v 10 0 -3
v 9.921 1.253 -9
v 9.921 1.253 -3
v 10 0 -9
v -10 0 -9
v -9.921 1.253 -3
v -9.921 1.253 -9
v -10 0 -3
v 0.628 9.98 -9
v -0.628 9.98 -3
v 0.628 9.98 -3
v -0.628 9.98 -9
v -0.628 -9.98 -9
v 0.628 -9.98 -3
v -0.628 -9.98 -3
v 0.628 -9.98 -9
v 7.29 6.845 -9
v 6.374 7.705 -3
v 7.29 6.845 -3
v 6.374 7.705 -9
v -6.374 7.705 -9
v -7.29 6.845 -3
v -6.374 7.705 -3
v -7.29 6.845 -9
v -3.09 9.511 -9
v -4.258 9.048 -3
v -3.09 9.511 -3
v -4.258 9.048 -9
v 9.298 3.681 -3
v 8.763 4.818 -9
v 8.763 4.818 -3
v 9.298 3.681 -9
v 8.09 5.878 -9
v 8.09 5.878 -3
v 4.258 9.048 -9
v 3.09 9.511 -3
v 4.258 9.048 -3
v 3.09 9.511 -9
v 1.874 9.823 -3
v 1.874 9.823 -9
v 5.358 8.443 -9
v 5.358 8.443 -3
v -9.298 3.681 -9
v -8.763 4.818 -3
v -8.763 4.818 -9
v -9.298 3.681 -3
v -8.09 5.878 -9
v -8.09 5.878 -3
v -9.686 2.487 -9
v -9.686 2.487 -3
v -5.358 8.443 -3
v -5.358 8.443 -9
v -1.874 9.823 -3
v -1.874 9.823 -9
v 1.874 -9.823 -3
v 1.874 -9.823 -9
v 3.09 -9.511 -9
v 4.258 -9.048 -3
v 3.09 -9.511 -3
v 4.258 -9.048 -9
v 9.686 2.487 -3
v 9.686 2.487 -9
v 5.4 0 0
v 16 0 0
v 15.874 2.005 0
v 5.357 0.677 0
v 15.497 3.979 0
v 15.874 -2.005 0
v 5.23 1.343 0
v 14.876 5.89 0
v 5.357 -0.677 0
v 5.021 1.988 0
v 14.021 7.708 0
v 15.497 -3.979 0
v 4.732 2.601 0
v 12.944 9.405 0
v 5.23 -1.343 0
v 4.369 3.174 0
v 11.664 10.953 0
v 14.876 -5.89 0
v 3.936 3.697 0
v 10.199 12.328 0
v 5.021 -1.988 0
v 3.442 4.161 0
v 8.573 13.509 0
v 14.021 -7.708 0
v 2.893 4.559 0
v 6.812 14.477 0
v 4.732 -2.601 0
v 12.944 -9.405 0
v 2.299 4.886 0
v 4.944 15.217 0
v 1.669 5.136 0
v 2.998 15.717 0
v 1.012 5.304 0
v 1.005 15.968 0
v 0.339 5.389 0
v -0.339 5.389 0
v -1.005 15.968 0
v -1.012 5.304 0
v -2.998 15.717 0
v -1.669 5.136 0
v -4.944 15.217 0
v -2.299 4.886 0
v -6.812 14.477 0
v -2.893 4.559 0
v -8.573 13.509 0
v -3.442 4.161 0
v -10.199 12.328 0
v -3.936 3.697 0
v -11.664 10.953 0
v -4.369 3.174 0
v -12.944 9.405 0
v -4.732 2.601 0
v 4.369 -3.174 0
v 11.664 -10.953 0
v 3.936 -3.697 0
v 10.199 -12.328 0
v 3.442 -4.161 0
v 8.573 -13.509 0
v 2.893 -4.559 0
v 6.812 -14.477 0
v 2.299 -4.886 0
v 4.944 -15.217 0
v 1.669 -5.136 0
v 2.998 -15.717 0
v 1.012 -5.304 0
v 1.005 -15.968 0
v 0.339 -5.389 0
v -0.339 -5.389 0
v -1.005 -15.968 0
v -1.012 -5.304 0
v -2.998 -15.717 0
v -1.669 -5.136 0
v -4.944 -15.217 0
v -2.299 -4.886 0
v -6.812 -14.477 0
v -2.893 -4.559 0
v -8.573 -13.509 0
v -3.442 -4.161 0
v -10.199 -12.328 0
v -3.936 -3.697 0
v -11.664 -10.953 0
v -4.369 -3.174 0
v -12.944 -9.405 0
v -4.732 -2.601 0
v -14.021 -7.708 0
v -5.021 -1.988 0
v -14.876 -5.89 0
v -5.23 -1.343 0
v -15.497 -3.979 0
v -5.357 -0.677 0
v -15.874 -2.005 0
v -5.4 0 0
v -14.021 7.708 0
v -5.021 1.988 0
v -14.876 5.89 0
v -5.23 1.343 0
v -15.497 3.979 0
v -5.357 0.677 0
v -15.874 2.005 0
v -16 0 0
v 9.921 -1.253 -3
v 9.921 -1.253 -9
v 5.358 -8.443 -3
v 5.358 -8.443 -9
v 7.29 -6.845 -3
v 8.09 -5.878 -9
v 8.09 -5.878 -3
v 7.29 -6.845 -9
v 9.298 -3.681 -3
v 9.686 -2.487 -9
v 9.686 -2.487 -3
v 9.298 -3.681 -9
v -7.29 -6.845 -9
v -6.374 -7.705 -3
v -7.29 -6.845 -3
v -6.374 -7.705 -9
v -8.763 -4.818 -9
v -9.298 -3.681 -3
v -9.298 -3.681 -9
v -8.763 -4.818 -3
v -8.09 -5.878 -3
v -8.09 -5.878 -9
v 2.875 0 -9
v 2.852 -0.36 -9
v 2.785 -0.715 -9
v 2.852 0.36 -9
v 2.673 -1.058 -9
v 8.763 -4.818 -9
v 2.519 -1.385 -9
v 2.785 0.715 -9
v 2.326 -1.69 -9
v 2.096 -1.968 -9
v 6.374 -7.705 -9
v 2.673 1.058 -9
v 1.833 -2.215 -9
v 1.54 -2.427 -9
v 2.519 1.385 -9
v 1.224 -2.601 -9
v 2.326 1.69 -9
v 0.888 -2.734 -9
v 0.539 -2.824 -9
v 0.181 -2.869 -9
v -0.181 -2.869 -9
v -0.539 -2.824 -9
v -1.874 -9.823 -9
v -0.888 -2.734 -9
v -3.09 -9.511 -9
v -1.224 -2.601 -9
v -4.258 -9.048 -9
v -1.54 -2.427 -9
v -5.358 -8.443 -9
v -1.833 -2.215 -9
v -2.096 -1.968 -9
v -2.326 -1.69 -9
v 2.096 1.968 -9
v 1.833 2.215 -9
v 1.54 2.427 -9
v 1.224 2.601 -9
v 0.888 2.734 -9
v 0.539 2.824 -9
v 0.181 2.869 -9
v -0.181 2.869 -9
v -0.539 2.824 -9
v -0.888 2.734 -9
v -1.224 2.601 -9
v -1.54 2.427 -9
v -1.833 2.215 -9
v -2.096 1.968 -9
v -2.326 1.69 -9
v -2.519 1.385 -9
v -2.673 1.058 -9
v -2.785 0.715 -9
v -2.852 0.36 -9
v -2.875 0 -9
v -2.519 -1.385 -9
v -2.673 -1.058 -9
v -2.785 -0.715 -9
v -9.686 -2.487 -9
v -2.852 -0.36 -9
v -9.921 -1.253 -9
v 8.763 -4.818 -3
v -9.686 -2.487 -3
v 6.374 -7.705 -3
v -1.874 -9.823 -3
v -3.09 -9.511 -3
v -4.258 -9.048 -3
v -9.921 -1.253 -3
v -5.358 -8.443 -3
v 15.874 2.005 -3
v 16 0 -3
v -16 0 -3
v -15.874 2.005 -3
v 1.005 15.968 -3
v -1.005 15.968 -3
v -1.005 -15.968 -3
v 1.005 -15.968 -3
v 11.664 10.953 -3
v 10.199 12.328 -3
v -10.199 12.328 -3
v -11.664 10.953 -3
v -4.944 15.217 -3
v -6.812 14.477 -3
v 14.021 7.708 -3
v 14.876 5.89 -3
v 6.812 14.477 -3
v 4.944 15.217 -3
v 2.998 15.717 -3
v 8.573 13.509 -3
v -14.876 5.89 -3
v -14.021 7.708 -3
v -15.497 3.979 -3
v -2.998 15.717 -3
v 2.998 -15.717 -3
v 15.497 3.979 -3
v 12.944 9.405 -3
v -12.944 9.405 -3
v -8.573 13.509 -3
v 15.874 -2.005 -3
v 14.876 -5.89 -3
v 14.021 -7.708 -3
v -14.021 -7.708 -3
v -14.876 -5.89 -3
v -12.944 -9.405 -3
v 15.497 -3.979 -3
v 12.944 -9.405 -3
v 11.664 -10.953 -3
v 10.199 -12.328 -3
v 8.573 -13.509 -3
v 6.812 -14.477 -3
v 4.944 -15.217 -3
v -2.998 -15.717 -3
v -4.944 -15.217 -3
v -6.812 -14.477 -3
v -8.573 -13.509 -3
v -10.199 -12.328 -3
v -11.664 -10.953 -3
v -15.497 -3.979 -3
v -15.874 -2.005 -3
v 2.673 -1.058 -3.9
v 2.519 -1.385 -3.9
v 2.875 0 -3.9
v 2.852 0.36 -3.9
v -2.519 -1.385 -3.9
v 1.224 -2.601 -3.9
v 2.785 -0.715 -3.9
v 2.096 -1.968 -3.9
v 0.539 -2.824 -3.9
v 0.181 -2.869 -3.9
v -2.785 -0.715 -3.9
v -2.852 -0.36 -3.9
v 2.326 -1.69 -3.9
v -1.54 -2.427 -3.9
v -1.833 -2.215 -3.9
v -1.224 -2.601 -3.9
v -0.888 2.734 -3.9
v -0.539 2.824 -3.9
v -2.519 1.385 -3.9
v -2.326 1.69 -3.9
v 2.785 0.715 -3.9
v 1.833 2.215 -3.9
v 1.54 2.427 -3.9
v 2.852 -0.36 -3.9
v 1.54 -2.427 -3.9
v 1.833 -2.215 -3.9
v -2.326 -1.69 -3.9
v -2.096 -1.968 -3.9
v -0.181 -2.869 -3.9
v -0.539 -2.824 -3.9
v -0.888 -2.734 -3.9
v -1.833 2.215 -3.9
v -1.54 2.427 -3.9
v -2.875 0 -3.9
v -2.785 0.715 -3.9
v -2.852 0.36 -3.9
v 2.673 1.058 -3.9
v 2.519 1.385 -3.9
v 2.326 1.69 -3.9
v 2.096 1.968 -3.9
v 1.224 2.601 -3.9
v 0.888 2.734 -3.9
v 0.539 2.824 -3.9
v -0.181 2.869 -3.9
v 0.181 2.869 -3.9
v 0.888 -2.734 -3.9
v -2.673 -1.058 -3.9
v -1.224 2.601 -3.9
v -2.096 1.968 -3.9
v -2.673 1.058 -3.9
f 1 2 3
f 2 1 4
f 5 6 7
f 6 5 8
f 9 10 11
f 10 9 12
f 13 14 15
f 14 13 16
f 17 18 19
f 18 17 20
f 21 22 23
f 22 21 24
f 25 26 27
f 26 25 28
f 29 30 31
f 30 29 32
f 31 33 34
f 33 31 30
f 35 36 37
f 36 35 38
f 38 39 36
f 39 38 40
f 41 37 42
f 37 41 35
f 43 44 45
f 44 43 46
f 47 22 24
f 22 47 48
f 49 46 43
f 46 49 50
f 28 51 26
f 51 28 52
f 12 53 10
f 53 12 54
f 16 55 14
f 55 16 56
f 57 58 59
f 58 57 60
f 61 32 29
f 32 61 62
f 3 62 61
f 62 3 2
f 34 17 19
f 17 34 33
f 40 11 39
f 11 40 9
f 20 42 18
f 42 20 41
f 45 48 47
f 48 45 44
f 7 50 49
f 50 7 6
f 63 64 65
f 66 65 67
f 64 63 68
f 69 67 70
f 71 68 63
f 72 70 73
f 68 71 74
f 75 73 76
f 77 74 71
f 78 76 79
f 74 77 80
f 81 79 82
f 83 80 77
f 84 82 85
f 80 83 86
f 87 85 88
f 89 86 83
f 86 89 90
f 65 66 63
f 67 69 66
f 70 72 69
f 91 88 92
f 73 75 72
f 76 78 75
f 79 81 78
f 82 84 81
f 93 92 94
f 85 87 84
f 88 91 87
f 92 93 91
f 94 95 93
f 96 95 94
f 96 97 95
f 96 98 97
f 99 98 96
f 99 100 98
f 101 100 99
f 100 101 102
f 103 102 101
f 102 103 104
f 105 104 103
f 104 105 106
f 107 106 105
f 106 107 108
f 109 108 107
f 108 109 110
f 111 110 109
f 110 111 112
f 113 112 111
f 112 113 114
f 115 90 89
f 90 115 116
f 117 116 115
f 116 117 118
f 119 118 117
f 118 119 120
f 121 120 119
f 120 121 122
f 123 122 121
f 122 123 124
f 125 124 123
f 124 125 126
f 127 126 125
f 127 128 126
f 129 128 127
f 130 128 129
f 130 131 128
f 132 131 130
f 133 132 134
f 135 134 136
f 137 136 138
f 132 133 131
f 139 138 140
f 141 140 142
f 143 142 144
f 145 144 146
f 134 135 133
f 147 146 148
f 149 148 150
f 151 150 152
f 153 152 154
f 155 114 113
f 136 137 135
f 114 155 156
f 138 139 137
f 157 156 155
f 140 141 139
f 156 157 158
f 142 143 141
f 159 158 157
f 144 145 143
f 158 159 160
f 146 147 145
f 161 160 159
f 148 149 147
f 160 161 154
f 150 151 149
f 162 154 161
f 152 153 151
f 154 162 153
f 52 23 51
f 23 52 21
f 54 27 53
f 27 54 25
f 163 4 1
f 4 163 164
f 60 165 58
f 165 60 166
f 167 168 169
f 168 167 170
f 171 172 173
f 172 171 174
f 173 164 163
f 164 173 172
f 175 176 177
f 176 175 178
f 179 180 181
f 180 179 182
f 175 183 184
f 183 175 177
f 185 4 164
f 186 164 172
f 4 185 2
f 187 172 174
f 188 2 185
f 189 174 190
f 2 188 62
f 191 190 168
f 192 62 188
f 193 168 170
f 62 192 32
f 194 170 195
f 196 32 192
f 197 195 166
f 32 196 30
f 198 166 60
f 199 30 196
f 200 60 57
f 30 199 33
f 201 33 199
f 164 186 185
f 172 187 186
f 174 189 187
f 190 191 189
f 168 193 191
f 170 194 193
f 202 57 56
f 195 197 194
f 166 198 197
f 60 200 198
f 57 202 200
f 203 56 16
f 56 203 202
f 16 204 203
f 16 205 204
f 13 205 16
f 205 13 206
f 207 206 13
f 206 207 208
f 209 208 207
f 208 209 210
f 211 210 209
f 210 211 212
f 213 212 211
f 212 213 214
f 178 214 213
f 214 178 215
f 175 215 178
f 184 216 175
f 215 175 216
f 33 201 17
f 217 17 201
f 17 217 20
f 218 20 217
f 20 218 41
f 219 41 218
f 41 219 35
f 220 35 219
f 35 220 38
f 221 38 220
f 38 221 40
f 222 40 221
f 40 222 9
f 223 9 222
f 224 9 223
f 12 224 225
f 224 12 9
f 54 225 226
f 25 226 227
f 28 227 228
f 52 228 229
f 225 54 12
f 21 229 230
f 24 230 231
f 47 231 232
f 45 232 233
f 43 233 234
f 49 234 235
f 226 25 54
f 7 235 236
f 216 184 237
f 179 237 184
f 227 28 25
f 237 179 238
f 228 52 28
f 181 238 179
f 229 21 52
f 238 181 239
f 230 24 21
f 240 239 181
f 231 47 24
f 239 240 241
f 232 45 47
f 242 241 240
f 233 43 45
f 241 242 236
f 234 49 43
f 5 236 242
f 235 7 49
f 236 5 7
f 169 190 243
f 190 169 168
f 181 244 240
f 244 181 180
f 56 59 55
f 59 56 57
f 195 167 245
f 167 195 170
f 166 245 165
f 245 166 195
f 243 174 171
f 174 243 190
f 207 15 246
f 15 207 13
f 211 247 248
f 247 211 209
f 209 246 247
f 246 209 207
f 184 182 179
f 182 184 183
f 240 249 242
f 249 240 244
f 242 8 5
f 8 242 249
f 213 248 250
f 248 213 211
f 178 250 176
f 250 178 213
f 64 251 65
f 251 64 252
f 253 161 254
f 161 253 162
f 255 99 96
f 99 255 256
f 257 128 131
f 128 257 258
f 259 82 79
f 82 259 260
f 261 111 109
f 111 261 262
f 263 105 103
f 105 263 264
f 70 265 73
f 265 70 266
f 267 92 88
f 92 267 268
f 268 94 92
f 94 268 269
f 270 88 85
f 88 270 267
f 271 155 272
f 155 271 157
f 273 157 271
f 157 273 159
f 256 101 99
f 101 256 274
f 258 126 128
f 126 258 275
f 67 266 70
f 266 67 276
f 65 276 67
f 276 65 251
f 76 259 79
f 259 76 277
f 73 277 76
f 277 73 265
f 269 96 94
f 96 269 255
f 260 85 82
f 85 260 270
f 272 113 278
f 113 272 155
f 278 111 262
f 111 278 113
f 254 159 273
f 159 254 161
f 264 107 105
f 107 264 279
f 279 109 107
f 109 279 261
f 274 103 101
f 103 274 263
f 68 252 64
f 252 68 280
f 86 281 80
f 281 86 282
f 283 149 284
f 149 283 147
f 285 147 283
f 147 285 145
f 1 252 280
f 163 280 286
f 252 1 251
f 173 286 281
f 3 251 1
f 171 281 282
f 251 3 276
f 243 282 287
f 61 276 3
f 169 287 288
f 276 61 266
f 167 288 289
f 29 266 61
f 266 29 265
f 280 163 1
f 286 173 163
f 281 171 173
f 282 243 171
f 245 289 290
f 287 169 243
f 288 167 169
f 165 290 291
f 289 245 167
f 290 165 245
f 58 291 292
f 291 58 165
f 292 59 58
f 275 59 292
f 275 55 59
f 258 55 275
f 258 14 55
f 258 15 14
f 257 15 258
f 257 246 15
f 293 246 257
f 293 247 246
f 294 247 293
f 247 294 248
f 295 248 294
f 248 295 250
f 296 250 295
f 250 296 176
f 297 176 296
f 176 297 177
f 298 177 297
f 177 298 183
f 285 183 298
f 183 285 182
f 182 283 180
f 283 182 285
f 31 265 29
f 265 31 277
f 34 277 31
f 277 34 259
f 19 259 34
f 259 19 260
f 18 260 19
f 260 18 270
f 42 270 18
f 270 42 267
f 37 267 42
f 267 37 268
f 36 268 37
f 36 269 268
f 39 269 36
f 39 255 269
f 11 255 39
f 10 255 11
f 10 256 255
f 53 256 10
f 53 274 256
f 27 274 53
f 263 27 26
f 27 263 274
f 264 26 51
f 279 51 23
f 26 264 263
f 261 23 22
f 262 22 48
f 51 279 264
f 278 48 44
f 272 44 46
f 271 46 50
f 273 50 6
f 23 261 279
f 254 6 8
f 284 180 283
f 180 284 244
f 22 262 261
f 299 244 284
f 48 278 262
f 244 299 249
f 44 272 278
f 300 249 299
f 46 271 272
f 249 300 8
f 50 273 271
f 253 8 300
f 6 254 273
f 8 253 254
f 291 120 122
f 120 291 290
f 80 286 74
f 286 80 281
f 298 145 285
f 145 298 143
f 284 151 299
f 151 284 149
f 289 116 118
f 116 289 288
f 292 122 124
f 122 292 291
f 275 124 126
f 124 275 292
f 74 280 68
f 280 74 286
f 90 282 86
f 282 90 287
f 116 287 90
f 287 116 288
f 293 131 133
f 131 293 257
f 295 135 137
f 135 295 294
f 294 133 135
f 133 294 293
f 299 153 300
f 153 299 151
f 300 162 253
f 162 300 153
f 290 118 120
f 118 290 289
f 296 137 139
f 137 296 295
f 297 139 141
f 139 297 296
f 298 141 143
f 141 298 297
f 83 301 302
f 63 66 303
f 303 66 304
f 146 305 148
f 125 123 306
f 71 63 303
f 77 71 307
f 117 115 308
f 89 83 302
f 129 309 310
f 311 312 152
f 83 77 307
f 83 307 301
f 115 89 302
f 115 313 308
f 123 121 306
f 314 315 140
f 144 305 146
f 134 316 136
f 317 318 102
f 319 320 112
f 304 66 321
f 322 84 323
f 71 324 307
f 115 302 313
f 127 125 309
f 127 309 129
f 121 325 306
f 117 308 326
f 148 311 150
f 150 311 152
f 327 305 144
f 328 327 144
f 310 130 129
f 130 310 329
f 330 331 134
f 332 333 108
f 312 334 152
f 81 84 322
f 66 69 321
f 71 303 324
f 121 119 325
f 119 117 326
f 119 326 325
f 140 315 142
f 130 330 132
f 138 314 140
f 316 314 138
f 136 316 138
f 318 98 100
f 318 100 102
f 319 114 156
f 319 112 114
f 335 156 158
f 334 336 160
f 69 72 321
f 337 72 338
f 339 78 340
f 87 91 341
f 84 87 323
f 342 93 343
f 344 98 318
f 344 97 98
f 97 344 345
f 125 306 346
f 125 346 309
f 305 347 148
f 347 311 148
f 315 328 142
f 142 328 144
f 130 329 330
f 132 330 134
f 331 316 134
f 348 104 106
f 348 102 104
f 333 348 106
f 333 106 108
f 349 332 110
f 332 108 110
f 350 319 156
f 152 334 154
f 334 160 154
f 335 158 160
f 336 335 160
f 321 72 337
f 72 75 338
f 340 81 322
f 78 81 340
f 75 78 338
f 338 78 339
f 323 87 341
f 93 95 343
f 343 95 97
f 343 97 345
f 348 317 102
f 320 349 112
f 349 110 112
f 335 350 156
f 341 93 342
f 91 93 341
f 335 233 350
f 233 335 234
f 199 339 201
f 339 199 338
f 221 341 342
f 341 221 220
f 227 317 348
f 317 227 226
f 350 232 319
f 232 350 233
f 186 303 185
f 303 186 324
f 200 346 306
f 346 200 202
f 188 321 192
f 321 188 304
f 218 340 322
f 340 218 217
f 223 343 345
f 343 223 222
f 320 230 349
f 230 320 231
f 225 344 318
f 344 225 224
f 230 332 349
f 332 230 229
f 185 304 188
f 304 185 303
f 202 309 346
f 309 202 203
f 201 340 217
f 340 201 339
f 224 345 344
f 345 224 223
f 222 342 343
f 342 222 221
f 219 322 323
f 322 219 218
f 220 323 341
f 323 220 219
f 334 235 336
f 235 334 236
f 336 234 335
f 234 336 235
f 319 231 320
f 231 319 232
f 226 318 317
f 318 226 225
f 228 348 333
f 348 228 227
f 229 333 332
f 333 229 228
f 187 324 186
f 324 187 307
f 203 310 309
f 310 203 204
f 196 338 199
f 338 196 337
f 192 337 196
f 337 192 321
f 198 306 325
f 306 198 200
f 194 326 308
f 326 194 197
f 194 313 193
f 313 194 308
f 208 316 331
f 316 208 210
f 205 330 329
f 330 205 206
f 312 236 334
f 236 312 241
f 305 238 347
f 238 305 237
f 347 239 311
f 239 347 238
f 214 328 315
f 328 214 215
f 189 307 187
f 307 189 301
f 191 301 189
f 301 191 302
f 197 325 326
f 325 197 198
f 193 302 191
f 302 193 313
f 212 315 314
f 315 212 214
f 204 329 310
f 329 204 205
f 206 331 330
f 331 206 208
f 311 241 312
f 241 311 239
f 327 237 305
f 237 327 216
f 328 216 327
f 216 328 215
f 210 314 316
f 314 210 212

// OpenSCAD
$fn = 50;


difference() {
	union() {
		translate(v = [0, 0, -9.0000000000]) {
			cylinder(h = 9, r = 10.0000000000);
		}
		translate(v = [0, 0, -3.0000000000]) {
			cylinder(h = 3, r = 16.0000000000);
		}
	}
	union() {
		translate(v = [0, 0, 0]) {
			rotate(a = [0, 0, 0]) {
				difference() {
					union() {
						#translate(v = [0, 0, -9.0000000000]) {
							cylinder(h = 9, r = 2.6000000000);
						}
						#translate(v = [0, 0, -3.9000000000]) {
							cylinder(h = 3.9000000000, r1 = 2.8750000000, r2 = 5.4000000000);
						}
						#translate(v = [0, 0, -9.0000000000]) {
							cylinder(h = 9, r = 2.8750000000);
						}
						#translate(v = [0, 0, -9.0000000000]) {
							cylinder(h = 9, r = 2.6000000000);
						}
					}
					union();
				}
			}
		}
	}
}
